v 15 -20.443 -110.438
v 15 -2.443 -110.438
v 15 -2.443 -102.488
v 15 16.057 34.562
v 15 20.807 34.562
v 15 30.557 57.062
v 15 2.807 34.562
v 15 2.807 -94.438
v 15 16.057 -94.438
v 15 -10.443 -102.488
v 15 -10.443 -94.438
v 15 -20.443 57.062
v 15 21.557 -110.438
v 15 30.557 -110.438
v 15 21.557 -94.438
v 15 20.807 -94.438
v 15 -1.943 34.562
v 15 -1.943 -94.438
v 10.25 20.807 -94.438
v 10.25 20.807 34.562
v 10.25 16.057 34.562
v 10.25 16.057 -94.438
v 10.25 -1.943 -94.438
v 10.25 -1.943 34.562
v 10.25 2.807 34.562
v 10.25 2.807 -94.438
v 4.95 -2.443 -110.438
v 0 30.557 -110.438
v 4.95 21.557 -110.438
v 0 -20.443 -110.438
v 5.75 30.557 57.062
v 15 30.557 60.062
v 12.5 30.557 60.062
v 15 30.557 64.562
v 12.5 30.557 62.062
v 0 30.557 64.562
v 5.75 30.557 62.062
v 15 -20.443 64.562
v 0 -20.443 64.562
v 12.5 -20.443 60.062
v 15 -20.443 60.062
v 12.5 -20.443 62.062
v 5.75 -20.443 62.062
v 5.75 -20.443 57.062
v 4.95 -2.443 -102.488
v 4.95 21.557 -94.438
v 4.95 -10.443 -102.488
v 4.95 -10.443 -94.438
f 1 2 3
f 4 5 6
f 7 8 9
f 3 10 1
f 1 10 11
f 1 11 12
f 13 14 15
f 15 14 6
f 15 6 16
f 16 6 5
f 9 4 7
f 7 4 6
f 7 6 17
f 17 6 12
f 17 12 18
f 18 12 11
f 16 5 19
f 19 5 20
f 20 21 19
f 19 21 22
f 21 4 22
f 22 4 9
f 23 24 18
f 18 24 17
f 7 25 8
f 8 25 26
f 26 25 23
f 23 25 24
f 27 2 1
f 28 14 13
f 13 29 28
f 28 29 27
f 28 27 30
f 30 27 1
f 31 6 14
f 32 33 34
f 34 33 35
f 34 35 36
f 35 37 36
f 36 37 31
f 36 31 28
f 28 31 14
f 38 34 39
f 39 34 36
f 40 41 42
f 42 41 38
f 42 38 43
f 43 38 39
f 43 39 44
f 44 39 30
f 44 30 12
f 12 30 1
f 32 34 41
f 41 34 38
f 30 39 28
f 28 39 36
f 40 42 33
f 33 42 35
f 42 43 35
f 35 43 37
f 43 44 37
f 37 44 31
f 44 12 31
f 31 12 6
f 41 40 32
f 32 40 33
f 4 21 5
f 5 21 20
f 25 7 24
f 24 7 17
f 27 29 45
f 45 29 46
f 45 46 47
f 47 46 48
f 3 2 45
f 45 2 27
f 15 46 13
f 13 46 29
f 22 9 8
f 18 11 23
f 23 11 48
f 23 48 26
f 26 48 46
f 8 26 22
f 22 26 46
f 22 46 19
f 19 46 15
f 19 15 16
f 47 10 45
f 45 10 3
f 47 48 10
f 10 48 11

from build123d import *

# Parameters (mm, degrees)
SKETCH1_W           = 175
SKETCH1_H           = 51
BOSS_EXTRUDE1_DEPTH = 15
CUT_EXTRUDE3_DEPTH  = 52
SKETCH7_W           = 4.75
SKETCH7_H           = 4.75
CUT_EXTRUDE5_DEPTH  = 145
SKETCH8_W           = 10.05
SKETCH8_H           = 24
CUT_EXTRUDE6_DEPTH  = 16
SKETCH9_W           = 10.05
SKETCH9_H           = 8.05
CUT_EXTRUDE7_DEPTH  = 8


with BuildPart() as part:
    # Sketch1 → Boss-Extrude1 (new body)
    with BuildSketch(Plane(origin=(0, 0, 0), x_dir=(0, 0, -1), z_dir=(1, 0, 0))):
        with Locations((22.937921078, 5.057266603)):
            Rectangle(SKETCH1_W, SKETCH1_H)
    extrude(amount=BOSS_EXTRUDE1_DEPTH)

    # Sketch6 → Cut-Extrude3 (cut, through all)
    with BuildSketch(Plane(origin=(0, 30.557266603, 0), x_dir=(1, 0, 0), z_dir=(0, 1, 0))):
        Polygon((12.5, -60.062078922), (15, -60.062078922), (15, -57.062078922), (12.5, -57.062078922), (5.75, -57.062078922), (5.75, -62.062078922), (12.5, -62.062078922), align=None)
    extrude(amount=-CUT_EXTRUDE3_DEPTH, mode=Mode.SUBTRACT)

    # Sketch7 → Cut-Extrude5 (cut)
    with BuildSketch(Plane(origin=(0, 0, -110.437921078), x_dir=(-1, 0, 0), z_dir=(0, 0, -1))):
        with Locations((-12.625, 0.432266603)):
            Rectangle(SKETCH7_W, SKETCH7_H)
        with Locations((-12.625, 18.432266603)):
            Rectangle(SKETCH7_W, SKETCH7_H)
    extrude(amount=-CUT_EXTRUDE5_DEPTH, mode=Mode.SUBTRACT)

    # Sketch8 → Cut-Extrude6 (cut)
    with BuildSketch(Plane(origin=(0, 0, -110.437921078), x_dir=(-1, 0, 0), z_dir=(0, 0, -1))):
        with Locations((-9.975, 9.557266603)):
            Rectangle(SKETCH8_W, SKETCH8_H)
    extrude(amount=-CUT_EXTRUDE6_DEPTH, mode=Mode.SUBTRACT)

    # Sketch9 → Cut-Extrude7 (cut)
    with BuildSketch(Plane(origin=(0, -2.442733397, 0), x_dir=(1, 0, 0), z_dir=(0, 1, 0))):
        with Locations((9.975, 98.462921078)):
            Rectangle(SKETCH9_W, SKETCH9_H)
    extrude(amount=-CUT_EXTRUDE7_DEPTH, mode=Mode.SUBTRACT)


solid = part.part
